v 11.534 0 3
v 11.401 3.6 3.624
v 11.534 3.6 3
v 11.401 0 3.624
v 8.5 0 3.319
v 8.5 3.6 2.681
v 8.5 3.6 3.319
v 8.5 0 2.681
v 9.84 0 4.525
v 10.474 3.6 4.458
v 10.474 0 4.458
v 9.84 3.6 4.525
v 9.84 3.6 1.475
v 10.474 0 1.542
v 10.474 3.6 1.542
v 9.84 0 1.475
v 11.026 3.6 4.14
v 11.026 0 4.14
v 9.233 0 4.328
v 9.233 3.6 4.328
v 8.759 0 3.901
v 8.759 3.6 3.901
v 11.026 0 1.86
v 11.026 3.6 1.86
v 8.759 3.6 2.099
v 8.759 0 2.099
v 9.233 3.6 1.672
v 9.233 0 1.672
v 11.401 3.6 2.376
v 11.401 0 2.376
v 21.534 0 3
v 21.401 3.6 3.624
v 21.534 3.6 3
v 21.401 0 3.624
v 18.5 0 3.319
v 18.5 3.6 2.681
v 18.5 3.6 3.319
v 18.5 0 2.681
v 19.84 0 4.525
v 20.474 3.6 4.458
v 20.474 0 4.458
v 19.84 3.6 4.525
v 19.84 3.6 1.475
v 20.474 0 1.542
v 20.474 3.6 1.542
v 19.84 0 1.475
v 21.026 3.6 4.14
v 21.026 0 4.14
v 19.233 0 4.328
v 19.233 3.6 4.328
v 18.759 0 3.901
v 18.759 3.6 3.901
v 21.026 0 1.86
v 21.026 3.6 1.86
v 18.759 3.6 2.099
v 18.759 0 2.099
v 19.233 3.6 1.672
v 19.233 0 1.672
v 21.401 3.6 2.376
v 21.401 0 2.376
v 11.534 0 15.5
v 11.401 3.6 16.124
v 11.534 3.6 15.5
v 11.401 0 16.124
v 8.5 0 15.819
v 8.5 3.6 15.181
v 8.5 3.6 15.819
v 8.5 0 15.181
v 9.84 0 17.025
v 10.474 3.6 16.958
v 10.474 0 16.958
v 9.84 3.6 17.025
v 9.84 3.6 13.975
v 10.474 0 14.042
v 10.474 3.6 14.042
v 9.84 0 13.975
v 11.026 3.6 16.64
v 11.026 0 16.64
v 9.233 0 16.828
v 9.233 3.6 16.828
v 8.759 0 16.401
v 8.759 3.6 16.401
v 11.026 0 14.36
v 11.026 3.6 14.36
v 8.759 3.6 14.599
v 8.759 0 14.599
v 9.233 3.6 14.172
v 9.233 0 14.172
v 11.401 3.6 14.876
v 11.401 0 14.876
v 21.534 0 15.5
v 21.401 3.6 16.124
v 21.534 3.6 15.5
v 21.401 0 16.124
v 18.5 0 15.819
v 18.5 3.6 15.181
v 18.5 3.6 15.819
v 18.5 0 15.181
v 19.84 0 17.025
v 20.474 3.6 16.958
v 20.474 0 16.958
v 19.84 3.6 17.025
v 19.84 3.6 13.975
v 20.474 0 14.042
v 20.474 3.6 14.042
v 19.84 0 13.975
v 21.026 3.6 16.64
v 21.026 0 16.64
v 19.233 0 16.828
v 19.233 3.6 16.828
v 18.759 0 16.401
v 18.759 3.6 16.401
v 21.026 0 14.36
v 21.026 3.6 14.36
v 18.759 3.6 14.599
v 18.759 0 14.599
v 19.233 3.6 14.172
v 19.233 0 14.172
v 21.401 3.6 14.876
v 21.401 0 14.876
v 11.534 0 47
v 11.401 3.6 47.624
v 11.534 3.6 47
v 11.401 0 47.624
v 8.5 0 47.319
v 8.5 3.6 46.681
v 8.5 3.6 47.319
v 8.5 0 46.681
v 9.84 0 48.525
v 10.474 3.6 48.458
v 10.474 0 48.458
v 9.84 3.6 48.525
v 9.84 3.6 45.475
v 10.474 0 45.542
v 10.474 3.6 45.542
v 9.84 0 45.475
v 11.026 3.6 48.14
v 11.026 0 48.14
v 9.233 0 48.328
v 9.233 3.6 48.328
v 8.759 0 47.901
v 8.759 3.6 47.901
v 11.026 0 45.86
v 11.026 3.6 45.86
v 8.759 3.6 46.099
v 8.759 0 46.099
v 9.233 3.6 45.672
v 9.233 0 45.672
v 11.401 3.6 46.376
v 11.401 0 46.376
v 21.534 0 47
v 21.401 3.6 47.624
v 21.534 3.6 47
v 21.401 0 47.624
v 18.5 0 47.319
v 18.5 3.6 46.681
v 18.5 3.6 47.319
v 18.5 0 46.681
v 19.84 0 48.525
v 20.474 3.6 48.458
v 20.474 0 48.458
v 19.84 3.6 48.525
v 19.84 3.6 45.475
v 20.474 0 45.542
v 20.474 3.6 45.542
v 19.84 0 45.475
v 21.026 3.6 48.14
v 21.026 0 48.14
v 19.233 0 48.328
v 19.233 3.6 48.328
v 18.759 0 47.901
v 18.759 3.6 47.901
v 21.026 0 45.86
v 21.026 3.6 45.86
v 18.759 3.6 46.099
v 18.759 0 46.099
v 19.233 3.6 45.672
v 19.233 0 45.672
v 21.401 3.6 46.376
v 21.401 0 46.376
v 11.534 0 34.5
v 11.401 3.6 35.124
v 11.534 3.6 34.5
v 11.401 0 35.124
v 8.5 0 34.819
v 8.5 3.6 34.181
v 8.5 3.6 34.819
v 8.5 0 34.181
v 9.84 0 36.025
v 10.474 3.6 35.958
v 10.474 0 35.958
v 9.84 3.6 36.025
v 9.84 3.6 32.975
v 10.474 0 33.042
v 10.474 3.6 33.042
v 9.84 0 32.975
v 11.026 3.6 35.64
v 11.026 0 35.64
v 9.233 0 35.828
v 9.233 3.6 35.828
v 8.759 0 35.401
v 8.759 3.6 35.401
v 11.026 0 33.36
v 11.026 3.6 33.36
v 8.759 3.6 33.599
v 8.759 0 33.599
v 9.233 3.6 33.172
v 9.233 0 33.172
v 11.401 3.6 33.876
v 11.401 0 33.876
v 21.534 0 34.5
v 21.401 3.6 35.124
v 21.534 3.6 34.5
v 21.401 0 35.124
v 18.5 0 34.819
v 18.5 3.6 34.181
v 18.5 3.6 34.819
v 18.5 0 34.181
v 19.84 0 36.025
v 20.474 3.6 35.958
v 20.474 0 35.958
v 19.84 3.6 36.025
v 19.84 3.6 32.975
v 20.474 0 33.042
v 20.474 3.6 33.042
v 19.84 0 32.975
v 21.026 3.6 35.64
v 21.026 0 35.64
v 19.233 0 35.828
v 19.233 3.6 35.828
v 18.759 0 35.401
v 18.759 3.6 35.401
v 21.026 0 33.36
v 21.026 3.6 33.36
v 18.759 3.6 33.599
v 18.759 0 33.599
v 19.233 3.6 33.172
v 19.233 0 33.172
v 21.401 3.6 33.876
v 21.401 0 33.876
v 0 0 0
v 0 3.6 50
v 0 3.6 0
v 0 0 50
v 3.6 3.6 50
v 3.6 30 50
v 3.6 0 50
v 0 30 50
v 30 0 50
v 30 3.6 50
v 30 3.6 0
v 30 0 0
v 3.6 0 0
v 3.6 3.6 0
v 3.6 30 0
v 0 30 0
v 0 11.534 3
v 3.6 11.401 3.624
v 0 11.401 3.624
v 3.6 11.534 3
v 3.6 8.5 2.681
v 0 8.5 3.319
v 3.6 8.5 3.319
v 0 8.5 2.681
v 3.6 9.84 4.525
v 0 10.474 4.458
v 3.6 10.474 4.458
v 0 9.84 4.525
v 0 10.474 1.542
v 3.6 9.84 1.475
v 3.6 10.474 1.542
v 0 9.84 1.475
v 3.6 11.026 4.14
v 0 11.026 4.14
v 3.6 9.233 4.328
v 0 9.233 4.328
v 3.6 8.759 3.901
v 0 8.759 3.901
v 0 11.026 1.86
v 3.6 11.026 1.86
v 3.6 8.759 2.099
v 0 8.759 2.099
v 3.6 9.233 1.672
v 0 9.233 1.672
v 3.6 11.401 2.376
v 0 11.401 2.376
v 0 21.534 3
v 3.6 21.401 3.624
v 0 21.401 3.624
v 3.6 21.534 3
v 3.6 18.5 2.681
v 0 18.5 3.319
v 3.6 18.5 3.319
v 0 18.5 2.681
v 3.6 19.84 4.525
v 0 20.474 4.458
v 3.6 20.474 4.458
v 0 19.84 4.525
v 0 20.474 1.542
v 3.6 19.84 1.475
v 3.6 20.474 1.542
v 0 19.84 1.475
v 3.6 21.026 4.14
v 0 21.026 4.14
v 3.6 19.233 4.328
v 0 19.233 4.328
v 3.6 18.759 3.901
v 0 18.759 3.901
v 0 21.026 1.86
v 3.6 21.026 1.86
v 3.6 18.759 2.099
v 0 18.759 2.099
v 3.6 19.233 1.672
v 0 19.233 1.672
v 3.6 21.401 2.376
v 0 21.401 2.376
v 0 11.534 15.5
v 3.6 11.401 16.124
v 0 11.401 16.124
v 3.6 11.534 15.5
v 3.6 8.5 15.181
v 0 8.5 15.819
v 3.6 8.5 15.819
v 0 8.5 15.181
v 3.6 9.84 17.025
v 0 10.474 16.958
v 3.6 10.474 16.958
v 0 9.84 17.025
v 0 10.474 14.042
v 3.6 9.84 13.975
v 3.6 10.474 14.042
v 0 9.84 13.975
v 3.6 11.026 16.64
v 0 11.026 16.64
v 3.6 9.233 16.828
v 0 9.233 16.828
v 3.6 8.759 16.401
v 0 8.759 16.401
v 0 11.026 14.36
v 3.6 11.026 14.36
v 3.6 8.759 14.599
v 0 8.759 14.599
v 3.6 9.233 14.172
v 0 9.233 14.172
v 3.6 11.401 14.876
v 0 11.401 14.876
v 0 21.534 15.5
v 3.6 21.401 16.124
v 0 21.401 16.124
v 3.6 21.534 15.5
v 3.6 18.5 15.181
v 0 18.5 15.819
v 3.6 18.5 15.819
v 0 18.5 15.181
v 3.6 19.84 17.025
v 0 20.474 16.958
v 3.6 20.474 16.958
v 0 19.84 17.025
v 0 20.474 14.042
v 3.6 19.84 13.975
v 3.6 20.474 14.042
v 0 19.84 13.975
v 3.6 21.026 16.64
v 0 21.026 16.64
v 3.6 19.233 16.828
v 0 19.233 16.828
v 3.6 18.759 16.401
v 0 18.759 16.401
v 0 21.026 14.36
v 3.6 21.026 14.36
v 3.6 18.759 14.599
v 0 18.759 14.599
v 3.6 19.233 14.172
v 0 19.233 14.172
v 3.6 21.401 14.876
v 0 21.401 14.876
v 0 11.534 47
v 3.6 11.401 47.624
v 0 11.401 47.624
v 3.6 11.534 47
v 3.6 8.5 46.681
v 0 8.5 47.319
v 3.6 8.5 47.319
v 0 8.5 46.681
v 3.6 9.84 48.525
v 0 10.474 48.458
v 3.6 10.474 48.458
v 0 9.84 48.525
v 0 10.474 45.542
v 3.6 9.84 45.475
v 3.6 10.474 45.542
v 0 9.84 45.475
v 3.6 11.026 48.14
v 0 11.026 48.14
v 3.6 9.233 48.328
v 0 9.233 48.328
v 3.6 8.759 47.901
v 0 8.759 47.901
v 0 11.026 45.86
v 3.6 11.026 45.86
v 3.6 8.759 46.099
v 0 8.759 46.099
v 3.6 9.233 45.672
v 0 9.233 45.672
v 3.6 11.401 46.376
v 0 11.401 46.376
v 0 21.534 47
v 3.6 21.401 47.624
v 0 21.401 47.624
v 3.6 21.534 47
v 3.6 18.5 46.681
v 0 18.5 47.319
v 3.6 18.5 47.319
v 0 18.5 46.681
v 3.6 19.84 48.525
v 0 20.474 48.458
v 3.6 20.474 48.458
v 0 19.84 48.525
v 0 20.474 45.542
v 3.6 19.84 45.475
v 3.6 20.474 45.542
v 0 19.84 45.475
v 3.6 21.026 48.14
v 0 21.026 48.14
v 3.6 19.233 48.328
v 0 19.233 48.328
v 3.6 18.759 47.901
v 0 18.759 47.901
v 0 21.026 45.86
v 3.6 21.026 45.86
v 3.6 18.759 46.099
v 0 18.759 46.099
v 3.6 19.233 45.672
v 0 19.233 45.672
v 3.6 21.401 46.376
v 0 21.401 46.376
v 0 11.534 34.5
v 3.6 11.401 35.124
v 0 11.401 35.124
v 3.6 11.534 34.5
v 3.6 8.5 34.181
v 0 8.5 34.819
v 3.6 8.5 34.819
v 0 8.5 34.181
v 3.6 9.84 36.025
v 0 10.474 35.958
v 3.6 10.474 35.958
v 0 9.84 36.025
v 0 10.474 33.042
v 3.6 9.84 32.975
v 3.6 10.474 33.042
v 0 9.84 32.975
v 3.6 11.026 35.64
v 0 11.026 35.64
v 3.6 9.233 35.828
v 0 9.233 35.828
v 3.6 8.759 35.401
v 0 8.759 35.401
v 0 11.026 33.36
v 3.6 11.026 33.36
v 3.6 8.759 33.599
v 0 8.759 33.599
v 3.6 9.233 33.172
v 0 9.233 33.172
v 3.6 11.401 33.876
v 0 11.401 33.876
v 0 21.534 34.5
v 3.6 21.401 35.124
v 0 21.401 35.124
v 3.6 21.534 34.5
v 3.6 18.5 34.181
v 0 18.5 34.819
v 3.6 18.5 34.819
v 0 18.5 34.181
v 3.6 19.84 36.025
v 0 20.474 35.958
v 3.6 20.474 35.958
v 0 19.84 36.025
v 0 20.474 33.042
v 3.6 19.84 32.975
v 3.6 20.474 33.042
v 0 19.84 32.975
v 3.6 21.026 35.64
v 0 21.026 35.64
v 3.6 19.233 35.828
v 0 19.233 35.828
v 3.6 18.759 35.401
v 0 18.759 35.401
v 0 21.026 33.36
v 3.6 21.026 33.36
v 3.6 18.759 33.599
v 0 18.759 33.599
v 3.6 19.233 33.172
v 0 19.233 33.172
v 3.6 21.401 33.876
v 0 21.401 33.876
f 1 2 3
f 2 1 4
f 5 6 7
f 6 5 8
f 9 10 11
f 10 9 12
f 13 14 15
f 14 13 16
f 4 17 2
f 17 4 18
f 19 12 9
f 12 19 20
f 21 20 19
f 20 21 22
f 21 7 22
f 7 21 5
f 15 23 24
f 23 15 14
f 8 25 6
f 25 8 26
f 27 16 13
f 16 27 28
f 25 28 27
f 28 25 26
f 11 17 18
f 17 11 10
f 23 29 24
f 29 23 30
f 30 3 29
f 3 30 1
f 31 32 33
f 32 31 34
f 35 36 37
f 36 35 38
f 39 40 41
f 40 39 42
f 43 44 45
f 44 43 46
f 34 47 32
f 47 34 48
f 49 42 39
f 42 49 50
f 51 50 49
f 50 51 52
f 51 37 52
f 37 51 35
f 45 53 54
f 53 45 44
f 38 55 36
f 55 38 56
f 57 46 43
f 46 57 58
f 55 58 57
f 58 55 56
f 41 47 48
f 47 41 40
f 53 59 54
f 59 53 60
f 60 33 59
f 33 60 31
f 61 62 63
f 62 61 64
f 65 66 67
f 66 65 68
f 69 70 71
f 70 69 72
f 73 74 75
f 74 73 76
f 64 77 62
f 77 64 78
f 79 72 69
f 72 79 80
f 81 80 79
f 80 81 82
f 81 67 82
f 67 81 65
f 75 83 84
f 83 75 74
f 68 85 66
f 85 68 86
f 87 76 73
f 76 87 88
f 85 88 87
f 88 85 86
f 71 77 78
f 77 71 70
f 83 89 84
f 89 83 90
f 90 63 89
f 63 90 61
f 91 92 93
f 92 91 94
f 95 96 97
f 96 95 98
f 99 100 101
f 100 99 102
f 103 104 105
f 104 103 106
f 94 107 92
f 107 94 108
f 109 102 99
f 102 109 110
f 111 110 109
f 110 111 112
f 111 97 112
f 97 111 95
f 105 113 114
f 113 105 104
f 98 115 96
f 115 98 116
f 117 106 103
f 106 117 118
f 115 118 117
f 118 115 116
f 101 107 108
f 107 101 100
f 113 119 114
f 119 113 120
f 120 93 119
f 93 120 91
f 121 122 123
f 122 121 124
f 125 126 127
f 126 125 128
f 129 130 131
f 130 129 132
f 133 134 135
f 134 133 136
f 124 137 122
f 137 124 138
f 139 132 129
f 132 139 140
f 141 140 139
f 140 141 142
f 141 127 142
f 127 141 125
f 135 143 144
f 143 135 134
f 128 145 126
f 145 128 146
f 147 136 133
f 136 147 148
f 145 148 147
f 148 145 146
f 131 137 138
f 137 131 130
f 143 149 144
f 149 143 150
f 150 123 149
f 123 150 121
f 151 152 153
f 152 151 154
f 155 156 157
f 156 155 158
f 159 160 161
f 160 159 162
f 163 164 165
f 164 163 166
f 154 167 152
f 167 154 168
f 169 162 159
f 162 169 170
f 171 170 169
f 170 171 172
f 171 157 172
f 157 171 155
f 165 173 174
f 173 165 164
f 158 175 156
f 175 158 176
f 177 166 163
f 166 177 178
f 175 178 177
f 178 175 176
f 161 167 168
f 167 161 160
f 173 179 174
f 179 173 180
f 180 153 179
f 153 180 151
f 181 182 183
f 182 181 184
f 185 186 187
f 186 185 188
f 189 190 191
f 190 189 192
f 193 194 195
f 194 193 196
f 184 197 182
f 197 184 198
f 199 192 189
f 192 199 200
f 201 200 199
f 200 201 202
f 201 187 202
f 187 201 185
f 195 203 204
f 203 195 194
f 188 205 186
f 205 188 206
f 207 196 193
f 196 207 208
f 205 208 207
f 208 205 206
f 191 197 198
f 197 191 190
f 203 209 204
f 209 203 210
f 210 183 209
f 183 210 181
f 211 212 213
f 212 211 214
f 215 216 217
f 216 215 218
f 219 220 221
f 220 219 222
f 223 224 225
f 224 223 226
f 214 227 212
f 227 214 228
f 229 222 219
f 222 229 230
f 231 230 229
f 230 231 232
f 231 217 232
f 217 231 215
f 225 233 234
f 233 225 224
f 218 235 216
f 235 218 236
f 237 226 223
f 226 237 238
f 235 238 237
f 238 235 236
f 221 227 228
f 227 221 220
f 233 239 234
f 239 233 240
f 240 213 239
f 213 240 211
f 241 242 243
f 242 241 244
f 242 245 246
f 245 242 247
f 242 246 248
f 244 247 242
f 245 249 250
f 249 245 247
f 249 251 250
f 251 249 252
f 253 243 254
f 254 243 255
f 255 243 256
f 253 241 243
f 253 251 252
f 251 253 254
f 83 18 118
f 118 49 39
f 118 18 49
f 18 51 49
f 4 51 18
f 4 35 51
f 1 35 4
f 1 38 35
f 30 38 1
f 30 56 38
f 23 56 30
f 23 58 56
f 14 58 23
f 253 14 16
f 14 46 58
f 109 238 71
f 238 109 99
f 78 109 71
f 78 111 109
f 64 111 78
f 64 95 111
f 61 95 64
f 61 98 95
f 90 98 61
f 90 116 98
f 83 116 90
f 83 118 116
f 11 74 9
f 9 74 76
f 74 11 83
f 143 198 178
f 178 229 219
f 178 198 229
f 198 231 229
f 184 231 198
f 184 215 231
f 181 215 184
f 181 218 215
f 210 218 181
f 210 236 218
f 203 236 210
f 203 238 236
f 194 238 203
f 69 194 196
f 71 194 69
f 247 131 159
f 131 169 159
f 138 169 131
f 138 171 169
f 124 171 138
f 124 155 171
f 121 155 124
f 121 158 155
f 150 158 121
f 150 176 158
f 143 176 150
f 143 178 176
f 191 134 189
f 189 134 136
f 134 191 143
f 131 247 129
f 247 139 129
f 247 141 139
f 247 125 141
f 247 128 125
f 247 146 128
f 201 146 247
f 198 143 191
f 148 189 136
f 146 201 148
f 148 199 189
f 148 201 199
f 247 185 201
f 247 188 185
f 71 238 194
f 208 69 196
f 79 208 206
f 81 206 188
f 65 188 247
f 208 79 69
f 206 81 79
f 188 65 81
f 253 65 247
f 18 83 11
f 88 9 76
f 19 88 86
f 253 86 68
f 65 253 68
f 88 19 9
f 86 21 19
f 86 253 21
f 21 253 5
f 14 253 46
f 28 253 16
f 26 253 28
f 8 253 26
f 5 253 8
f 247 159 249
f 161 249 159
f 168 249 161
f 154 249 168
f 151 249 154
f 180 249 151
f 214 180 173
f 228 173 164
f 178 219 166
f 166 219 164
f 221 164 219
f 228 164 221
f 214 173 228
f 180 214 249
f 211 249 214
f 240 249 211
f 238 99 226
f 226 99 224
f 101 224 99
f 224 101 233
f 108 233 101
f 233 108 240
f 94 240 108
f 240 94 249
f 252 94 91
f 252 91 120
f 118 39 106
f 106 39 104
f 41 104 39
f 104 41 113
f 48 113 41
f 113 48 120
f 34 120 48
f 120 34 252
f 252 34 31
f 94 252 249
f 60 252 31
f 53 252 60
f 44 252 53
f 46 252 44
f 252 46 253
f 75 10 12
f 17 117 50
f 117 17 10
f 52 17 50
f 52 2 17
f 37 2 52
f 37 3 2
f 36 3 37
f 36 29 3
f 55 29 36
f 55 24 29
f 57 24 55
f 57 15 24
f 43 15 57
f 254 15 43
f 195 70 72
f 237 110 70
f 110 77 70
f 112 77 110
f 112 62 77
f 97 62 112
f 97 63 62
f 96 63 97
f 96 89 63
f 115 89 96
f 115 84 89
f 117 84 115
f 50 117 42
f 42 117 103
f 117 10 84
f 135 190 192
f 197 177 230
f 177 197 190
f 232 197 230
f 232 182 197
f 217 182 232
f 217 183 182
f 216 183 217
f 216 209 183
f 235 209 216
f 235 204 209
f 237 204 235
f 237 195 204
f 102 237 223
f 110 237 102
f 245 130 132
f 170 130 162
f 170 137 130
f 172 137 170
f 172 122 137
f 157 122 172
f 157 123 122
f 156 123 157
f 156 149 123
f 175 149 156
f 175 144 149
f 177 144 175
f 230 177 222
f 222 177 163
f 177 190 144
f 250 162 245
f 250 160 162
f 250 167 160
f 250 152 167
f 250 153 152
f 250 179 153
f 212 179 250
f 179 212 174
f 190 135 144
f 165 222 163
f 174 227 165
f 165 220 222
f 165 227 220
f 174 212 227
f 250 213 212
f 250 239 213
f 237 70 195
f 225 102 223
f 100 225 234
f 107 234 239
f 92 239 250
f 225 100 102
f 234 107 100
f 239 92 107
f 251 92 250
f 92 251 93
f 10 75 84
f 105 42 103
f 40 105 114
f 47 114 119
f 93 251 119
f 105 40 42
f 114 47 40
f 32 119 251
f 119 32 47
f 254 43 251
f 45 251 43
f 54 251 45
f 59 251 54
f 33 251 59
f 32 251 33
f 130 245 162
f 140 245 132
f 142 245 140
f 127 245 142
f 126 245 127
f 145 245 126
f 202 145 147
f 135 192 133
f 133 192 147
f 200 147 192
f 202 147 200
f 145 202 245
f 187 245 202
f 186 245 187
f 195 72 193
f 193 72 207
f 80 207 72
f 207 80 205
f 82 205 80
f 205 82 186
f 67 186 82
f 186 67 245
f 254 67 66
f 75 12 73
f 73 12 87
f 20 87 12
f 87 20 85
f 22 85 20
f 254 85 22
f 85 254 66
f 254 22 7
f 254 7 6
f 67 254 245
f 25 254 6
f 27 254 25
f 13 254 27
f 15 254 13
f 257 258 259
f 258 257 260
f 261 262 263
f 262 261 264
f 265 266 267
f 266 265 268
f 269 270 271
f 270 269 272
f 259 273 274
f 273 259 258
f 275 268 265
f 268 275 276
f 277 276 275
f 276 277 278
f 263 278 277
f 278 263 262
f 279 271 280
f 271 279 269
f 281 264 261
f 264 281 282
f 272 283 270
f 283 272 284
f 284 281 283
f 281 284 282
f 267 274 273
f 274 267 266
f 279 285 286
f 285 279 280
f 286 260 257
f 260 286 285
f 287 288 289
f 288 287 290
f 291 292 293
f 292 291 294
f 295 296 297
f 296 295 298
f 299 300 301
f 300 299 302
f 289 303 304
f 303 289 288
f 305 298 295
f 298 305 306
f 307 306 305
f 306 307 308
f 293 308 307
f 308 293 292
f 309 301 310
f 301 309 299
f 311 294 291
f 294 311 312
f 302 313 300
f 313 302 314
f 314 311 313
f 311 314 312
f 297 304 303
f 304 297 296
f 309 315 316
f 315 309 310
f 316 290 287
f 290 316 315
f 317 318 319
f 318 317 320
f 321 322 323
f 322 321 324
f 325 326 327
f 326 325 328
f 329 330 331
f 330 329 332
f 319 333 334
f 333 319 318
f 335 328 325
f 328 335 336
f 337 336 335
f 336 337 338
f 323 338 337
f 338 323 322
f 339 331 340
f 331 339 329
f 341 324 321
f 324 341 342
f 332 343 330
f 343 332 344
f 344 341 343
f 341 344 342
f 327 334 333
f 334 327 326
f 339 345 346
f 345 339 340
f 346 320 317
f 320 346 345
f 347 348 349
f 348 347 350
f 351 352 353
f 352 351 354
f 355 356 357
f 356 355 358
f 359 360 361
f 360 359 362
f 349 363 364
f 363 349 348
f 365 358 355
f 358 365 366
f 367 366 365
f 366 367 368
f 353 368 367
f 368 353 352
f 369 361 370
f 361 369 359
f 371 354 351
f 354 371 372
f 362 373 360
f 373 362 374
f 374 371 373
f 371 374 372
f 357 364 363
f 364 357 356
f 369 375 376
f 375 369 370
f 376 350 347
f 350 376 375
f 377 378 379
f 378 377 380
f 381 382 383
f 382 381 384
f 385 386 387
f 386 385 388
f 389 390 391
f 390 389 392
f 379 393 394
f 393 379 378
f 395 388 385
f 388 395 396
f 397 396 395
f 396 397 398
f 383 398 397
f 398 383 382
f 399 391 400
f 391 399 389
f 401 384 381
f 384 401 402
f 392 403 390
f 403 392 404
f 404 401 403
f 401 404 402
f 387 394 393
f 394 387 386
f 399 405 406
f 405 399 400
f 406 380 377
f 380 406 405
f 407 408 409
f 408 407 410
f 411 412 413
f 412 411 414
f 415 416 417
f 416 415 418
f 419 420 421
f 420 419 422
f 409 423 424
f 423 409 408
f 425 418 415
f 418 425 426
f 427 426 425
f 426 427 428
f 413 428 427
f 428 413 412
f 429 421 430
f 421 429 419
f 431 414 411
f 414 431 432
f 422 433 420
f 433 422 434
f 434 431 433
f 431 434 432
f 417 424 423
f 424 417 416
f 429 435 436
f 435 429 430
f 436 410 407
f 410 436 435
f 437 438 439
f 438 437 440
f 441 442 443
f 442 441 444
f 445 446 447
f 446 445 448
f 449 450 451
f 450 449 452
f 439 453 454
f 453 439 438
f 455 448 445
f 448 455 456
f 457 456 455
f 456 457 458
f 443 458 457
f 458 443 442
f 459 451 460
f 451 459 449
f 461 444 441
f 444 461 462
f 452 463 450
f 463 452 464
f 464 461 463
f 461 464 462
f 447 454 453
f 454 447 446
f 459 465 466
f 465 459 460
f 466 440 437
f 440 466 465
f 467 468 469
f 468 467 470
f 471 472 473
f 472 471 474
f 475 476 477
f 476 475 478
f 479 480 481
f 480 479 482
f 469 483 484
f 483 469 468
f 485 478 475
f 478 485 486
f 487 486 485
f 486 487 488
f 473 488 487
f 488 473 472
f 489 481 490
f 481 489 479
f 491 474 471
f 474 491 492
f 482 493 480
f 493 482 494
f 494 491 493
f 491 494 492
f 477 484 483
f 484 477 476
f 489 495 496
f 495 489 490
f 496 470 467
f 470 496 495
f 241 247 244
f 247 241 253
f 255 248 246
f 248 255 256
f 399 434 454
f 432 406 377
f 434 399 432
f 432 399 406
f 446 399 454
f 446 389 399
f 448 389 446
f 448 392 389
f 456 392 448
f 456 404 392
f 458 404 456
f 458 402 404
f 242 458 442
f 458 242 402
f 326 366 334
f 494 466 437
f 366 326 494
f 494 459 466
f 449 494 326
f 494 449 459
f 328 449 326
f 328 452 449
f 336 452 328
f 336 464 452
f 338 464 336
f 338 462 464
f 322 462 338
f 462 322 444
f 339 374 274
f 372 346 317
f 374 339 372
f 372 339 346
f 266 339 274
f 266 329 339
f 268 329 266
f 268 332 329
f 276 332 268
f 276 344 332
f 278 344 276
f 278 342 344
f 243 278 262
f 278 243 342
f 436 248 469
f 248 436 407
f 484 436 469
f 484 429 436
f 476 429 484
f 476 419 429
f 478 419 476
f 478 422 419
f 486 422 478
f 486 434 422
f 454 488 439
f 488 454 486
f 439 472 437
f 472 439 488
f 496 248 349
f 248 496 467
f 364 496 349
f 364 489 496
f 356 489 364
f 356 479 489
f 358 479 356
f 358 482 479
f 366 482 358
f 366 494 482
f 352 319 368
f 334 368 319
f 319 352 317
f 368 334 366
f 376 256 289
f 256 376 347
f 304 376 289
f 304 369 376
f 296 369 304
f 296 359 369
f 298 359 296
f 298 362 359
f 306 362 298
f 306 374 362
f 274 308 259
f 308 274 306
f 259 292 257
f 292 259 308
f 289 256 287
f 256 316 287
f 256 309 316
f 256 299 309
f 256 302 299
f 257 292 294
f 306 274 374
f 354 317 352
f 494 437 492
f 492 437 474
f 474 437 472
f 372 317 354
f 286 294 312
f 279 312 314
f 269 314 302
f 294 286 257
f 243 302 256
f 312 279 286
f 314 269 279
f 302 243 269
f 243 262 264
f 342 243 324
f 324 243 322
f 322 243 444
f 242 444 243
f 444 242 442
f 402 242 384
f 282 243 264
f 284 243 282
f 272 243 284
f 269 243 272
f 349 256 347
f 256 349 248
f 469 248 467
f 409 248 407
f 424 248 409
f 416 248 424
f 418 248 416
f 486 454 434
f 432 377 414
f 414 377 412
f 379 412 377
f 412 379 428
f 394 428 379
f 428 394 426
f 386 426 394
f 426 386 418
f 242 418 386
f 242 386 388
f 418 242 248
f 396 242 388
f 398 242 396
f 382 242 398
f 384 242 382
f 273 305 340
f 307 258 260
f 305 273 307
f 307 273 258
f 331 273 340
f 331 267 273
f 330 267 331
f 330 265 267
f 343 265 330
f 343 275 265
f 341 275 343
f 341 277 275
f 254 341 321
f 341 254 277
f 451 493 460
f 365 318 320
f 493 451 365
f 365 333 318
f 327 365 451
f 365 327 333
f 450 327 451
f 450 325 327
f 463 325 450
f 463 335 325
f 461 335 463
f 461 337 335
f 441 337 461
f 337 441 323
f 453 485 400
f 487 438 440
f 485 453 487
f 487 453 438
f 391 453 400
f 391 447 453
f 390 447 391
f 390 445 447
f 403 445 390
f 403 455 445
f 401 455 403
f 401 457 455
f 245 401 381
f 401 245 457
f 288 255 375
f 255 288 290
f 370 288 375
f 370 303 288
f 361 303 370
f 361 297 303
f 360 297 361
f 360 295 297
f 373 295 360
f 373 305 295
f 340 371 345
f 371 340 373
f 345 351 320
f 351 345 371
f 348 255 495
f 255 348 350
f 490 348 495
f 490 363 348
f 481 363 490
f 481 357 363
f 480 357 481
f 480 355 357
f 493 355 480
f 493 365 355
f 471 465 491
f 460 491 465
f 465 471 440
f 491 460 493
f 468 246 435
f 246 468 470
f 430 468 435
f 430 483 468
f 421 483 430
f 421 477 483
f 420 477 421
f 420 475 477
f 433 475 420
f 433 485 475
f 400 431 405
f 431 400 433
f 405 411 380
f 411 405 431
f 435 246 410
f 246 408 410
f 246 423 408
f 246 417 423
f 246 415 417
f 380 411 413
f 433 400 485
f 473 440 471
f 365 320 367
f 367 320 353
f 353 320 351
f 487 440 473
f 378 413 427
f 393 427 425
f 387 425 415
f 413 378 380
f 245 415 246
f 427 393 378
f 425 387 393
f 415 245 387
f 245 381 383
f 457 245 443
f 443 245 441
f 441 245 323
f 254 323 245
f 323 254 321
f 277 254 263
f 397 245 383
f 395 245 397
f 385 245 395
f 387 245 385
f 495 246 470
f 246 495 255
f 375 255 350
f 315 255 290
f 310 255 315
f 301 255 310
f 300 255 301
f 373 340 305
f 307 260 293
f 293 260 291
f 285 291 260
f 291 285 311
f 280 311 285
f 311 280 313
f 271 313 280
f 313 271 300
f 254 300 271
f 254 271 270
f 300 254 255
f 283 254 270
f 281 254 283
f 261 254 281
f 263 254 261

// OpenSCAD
// file: lib/hole.scad
module cylinder_outer(h,d=undef,d1=undef,d2=undef,fn=15) {
	fudge = cos(180/fn);
	cylinder(h=h,d=d/fudge,d1=d1/fudge,d2=d2/fudge,$fn=fn);
}

module hole(d, height, countersink=0, extra_above=false) {
	height = height - countersink;
	translate([0, 0, -(height+countersink)]) {
		translate([0, 0, height+0.001]) cylinder_outer(d1=d, d2=d*1.5, h=countersink);
		if (extra_above) {
			translate([0, 0, height+0.001]) cylinder_outer(d1=d, d2=d*2, h=countersink*3/2);
		}
		if (height > 0)
			translate([0, 0, -2]) cylinder_outer(d=d, h=height+2.1);
	}
}
// main file
use <lib/hole.scad>;

module angle_bracket(a = 30, b = 30, h = 50, thickness = 3.6, d = 3, angle = 90) {
	angle_bracket_side(a, h, thickness, d);
	rotate(angle) scale([1, -1, 1]) angle_bracket_side(a, h, thickness, d);
}

module angle_bracket_side(a, h, thickness, d) {
	difference() {
		cube([a, thickness, h]);
		translate([a*1/3, 0, d]) rotate([90, 0, 0]) hole(d, thickness);
		translate([a*2/3, 0, d]) rotate([90, 0, 0]) hole(d, thickness);
		translate([a*1/3, 0, d+h/4]) rotate([90, 0, 0]) hole(d, thickness);
		translate([a*2/3, 0, d+h/4]) rotate([90, 0, 0]) hole(d, thickness);
		translate([a*1/3, 0, h-d]) rotate([90, 0, 0]) hole(d, thickness);
		translate([a*2/3, 0, h-d]) rotate([90, 0, 0]) hole(d, thickness);
		translate([a*1/3, 0, h-(d+h/4)]) rotate([90, 0, 0]) hole(d, thickness);
		translate([a*2/3, 0, h-(d+h/4)]) rotate([90, 0, 0]) hole(d, thickness);
	}
}

angle_bracket();
